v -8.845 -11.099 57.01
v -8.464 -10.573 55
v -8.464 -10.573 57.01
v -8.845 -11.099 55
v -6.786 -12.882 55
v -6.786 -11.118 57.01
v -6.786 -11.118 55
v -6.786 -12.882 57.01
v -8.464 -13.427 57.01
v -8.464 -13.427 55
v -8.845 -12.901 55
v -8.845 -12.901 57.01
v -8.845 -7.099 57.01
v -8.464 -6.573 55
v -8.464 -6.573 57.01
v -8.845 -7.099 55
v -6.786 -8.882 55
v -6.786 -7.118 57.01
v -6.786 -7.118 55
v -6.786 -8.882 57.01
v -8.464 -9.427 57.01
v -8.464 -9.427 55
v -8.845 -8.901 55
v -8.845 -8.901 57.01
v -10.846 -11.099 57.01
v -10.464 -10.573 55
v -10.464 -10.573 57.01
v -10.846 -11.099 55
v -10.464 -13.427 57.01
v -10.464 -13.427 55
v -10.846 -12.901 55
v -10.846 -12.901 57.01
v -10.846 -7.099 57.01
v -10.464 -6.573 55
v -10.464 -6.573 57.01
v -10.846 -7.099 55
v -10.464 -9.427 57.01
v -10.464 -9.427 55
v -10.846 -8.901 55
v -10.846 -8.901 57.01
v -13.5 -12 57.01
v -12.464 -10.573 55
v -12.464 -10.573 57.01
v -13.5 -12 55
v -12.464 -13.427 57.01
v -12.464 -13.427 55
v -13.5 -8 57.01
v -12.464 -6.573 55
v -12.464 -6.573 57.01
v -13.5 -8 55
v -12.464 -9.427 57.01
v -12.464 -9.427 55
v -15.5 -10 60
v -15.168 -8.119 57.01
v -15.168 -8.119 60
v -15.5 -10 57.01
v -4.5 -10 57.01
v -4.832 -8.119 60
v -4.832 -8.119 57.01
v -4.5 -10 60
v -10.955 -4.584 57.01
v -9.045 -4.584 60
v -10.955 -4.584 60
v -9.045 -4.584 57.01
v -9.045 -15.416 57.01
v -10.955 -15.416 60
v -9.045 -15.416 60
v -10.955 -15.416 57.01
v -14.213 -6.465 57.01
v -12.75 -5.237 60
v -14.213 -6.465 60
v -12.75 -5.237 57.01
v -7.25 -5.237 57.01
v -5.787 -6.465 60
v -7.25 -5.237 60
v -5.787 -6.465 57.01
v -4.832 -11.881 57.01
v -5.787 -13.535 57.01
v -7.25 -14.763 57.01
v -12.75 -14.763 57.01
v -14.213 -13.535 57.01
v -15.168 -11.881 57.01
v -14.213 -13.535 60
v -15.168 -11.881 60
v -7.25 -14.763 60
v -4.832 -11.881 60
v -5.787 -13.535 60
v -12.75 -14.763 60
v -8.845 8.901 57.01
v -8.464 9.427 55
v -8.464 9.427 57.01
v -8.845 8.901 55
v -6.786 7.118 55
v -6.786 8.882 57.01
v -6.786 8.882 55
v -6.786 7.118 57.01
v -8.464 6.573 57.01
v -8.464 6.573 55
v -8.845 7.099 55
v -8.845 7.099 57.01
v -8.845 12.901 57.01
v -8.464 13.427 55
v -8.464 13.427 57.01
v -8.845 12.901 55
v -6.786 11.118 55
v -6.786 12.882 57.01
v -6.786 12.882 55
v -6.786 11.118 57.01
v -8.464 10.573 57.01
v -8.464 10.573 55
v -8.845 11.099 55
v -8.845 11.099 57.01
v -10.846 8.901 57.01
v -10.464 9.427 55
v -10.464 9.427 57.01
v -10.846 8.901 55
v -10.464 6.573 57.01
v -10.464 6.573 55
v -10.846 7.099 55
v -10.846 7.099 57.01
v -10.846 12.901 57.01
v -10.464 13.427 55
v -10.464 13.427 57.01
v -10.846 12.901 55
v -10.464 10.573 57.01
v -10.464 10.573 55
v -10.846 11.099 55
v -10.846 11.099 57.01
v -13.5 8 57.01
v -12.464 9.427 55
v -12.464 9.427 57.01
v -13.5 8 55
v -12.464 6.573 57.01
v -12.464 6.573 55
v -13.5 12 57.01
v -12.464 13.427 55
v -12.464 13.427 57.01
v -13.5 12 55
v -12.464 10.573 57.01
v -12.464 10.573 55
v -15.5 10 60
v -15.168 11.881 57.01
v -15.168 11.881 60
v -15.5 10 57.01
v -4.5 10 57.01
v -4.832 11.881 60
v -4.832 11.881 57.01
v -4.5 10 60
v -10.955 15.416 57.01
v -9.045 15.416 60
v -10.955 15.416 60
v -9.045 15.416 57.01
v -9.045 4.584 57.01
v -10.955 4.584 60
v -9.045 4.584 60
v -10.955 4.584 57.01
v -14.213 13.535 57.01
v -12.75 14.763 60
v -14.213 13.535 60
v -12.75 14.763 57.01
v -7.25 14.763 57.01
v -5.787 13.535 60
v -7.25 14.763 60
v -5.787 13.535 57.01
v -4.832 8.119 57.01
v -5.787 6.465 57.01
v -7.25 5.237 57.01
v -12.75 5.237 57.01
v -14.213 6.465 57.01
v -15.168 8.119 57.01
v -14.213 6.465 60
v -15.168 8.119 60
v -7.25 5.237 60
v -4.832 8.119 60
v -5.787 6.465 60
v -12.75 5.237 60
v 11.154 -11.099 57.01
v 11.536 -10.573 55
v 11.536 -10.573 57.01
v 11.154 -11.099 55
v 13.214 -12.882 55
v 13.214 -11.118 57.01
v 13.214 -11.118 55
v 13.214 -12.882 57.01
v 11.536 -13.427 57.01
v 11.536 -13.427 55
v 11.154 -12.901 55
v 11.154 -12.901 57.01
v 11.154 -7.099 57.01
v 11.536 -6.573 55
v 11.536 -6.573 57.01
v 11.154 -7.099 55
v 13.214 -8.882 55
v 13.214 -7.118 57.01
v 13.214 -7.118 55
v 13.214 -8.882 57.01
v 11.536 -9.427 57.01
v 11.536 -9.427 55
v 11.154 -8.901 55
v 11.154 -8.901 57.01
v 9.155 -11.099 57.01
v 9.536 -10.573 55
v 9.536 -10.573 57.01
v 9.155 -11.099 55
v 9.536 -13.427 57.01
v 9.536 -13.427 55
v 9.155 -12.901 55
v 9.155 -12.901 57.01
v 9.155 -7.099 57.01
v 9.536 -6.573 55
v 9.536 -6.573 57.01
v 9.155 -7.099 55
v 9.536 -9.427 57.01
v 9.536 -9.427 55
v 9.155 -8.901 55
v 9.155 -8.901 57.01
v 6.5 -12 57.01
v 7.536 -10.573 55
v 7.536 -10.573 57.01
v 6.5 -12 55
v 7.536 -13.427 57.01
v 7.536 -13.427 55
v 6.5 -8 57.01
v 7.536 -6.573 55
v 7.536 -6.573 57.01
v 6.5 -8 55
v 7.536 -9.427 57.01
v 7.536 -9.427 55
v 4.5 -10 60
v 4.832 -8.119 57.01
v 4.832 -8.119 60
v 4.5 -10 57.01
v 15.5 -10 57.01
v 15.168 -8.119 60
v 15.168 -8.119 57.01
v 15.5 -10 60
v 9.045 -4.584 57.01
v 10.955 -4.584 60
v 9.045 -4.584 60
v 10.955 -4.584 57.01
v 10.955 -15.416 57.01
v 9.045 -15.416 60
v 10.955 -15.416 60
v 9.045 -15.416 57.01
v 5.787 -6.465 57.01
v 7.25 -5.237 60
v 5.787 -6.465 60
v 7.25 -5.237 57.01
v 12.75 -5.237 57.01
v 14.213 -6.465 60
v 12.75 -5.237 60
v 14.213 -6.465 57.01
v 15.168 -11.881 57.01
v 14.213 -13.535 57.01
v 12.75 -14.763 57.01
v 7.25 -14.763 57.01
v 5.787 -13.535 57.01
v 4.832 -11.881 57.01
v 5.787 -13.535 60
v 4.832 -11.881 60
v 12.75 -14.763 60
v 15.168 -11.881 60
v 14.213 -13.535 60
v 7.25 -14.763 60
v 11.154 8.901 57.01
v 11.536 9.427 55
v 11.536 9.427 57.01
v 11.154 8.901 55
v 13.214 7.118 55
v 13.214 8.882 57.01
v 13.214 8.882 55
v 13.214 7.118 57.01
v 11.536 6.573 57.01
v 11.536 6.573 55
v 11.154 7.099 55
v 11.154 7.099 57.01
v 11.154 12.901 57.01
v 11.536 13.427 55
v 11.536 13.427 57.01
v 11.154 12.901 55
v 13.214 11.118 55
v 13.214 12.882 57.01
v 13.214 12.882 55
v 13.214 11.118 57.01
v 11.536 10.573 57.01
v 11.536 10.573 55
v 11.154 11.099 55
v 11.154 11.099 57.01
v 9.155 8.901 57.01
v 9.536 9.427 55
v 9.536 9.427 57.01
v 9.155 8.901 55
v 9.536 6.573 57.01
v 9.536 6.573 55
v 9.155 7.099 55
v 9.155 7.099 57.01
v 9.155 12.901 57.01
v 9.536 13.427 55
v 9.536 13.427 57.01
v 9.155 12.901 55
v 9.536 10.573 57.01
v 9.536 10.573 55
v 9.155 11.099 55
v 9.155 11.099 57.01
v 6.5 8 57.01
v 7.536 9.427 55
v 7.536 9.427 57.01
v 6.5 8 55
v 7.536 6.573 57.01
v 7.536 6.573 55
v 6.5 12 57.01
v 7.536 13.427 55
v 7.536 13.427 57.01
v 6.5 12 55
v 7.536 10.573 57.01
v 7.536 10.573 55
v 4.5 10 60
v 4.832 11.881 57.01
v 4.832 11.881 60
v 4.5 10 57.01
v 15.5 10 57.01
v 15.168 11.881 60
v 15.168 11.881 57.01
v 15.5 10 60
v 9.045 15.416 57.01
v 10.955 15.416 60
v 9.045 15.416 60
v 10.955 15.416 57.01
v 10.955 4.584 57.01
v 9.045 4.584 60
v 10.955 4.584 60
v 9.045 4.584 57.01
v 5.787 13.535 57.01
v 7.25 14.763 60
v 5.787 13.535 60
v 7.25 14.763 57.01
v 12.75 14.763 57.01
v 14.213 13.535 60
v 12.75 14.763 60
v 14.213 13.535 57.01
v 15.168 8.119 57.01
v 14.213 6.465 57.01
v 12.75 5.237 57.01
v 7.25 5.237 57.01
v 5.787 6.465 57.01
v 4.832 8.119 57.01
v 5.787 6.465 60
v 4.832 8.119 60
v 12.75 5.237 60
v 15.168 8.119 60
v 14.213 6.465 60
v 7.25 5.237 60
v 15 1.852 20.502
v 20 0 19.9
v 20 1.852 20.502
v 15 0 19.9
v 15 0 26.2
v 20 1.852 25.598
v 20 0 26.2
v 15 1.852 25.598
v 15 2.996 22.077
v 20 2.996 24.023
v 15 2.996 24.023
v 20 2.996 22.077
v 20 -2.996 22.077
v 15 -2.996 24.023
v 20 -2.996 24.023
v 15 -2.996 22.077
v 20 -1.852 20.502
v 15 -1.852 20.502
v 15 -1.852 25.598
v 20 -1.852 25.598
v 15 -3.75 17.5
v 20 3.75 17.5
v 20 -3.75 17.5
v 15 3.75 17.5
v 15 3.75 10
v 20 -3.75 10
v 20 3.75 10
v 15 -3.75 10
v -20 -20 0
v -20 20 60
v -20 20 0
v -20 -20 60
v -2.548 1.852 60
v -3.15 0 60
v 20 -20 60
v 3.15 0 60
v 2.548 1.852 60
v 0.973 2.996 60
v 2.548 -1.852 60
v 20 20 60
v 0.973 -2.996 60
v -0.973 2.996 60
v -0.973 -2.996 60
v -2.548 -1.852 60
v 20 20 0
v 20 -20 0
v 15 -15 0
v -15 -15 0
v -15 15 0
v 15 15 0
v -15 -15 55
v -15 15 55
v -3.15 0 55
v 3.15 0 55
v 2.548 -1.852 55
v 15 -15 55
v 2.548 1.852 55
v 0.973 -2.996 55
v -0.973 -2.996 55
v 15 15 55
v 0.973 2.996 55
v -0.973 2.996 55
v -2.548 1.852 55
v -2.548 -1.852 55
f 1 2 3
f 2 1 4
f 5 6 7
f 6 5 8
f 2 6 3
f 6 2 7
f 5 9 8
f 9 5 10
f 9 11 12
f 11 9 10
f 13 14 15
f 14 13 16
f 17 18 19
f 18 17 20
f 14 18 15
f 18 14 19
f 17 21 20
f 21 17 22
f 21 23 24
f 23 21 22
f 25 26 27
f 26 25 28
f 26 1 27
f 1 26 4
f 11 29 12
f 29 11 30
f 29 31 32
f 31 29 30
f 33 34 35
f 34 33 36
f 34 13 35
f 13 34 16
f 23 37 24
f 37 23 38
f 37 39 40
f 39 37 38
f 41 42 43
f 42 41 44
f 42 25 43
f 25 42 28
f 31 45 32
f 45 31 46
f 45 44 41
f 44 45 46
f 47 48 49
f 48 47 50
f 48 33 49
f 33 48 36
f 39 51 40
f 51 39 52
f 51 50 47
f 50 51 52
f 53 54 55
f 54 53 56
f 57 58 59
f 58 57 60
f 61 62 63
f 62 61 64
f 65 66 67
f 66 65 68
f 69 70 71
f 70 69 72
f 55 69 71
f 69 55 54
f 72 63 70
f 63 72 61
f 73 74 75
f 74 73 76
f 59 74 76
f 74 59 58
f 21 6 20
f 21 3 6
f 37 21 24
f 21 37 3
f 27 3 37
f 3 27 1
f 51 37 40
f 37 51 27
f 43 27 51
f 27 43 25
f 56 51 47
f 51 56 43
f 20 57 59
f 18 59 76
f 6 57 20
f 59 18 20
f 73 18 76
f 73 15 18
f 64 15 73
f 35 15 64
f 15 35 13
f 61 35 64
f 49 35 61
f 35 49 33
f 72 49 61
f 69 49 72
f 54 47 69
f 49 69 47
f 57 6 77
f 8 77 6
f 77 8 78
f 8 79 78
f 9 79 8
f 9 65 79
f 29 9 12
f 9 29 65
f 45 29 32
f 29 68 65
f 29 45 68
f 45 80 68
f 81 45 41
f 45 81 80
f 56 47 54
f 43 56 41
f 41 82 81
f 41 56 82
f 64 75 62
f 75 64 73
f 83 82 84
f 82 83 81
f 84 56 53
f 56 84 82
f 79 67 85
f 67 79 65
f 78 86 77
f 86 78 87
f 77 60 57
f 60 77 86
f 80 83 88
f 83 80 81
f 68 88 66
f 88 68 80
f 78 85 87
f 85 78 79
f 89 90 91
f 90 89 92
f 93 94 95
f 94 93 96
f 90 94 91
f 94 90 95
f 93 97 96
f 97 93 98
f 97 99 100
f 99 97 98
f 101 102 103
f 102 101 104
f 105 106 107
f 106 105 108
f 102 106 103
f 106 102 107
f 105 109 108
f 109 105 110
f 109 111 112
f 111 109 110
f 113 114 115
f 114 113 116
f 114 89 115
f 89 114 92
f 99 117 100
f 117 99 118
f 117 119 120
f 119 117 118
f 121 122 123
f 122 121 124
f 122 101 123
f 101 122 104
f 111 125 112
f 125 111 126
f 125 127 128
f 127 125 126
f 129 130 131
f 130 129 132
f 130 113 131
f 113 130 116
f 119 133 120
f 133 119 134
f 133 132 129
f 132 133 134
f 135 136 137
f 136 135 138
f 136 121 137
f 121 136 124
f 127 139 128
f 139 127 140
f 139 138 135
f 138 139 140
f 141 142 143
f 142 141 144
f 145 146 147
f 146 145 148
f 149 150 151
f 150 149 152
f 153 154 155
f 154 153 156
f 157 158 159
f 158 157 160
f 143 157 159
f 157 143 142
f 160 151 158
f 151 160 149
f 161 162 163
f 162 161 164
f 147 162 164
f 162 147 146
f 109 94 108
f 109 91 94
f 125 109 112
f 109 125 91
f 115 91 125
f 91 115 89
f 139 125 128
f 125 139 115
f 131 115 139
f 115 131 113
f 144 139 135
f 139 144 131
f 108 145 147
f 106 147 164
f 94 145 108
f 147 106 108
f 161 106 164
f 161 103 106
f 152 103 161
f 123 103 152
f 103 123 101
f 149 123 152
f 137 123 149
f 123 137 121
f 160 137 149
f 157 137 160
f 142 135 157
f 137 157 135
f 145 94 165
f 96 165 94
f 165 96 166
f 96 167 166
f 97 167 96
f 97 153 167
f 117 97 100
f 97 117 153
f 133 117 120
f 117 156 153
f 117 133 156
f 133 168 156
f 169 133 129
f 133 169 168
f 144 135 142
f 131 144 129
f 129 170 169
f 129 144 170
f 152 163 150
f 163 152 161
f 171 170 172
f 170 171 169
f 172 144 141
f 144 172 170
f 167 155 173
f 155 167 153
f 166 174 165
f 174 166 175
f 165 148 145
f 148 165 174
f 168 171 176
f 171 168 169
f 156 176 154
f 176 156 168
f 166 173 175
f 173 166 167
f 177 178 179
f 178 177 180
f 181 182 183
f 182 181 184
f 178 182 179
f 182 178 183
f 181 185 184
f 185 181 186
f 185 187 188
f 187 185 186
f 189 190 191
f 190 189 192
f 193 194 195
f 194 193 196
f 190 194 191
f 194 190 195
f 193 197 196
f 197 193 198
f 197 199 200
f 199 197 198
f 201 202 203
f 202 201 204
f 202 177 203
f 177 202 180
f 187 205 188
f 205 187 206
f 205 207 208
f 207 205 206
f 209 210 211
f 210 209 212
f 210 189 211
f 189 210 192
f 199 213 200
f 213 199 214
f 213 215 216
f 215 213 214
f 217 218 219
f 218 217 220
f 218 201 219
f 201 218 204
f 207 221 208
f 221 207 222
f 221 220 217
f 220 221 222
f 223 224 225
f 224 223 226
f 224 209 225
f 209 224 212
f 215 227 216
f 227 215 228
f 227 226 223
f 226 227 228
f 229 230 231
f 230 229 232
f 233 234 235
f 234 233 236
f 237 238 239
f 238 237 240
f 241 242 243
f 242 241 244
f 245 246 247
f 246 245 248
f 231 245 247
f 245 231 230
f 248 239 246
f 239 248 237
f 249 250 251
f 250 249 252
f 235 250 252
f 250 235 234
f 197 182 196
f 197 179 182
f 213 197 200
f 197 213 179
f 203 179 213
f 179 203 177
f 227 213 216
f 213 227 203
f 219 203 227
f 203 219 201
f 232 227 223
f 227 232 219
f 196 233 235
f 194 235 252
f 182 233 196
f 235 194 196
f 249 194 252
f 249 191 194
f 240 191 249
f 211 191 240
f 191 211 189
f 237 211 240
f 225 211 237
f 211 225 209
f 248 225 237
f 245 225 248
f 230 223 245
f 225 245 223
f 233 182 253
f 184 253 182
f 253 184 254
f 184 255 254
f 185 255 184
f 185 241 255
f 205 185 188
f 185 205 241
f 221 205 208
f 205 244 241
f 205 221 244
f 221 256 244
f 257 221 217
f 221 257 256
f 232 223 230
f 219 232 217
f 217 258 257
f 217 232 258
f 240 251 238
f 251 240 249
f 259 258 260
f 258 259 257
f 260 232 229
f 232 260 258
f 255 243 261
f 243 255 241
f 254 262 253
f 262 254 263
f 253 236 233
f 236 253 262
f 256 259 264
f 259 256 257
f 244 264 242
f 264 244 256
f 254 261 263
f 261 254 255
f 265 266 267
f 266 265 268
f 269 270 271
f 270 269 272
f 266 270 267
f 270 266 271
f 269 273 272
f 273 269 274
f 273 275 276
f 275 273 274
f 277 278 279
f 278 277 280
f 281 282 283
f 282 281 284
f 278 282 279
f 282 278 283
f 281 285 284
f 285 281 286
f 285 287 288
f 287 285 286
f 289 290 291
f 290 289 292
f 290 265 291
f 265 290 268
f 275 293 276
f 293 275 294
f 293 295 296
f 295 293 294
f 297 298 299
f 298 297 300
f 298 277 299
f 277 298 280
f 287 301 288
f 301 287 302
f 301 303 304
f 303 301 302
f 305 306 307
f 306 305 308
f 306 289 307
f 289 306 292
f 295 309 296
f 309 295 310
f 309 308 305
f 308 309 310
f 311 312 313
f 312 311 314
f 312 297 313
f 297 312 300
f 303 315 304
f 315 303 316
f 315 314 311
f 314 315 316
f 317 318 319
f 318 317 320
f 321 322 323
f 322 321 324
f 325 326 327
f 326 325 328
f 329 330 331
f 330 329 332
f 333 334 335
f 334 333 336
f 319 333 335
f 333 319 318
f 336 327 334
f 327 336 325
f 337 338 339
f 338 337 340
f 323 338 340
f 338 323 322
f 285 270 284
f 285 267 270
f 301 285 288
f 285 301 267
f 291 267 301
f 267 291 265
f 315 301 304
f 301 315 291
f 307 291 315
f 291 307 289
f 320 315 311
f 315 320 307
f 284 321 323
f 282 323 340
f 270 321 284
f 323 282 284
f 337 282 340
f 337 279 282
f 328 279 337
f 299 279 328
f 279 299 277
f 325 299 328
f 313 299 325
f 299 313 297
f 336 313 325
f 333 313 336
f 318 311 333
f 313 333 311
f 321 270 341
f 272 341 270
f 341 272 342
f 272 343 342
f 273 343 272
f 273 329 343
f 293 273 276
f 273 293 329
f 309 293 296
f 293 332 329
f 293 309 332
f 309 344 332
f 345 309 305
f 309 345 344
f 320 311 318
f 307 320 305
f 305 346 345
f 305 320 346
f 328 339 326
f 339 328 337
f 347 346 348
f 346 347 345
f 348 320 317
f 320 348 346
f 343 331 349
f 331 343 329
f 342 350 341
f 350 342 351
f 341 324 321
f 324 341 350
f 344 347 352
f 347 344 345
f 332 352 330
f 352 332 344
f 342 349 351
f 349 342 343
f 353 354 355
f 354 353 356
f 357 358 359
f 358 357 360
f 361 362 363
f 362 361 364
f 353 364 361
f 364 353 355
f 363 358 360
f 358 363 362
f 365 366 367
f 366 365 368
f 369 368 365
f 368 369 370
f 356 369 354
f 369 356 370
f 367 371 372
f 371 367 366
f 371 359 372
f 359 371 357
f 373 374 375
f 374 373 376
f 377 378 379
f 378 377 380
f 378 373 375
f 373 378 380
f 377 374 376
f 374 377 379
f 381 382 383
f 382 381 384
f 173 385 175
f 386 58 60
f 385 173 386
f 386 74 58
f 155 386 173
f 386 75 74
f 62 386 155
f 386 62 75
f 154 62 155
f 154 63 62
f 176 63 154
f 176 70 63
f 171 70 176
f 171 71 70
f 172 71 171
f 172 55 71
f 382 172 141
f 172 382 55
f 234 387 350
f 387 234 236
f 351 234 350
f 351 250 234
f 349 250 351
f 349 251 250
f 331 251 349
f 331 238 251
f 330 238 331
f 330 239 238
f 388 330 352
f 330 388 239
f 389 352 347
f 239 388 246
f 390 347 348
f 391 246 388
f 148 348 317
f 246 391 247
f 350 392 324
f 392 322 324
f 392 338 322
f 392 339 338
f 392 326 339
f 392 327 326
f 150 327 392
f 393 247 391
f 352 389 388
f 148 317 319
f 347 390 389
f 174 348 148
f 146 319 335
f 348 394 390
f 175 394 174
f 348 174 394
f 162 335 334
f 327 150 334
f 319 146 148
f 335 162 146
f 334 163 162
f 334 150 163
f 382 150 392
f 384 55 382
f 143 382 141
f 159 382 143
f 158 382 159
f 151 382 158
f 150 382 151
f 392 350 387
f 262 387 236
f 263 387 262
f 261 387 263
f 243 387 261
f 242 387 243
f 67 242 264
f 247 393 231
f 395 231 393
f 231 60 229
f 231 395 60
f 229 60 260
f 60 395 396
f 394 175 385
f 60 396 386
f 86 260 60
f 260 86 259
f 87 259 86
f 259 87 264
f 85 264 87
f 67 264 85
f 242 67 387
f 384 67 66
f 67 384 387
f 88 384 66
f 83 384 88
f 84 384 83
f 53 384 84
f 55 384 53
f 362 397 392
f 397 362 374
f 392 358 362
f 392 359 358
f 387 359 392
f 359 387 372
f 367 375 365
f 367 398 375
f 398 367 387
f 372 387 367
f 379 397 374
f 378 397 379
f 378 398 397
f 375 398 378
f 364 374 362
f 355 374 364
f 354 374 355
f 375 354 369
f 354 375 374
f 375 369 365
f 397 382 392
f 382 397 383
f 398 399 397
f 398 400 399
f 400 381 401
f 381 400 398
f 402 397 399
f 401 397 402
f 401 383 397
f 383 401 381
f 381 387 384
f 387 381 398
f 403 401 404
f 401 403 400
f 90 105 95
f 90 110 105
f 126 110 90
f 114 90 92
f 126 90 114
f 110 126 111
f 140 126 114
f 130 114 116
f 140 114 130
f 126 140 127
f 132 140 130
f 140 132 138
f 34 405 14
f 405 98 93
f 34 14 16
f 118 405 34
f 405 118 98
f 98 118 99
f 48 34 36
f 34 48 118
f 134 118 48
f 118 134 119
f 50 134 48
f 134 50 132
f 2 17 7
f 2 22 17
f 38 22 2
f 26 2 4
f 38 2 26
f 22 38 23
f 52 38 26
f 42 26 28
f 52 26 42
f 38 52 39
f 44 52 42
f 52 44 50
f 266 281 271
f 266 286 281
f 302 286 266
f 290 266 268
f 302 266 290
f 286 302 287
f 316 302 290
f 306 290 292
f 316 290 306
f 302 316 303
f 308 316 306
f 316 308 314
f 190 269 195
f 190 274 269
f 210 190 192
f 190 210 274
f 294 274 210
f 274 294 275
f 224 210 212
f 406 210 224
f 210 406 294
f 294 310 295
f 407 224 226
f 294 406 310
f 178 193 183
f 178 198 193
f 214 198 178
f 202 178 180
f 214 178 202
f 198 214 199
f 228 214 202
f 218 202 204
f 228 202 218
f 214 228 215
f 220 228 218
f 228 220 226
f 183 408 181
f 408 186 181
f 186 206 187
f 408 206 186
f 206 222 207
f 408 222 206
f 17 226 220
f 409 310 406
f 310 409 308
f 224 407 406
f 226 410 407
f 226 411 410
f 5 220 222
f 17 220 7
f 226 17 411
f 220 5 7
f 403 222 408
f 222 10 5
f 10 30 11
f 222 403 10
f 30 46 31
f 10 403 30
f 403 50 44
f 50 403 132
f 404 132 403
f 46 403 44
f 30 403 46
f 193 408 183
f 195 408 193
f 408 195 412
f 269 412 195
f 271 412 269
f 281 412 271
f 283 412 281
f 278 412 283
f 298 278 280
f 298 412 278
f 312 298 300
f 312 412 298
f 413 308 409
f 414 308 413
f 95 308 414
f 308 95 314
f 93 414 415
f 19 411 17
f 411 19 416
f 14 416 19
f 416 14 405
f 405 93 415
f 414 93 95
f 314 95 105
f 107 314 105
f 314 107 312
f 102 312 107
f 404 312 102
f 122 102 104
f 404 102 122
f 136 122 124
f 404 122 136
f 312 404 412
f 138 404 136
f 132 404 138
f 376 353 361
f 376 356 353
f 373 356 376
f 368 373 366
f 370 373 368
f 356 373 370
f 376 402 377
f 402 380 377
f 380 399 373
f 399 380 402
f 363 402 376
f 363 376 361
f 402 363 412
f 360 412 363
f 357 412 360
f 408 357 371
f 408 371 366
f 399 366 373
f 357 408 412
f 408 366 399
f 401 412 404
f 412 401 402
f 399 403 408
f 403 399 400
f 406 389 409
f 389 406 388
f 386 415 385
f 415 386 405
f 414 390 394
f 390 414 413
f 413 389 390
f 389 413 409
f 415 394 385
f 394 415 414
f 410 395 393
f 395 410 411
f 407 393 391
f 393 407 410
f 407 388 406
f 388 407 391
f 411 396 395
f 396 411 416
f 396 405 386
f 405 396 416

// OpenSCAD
// Units are mm
tube_dia = 6.3;
led_dia = 11;
led_h = 3;
wire_dia = 3;
pad_spacing_x = 2;
pad_spacing_y = 4;

module_thickness = 5;
module_size = 40;
module_height = 60;
F = 0.01; // Fudge factor

module rect_array(x_spacing, y_spacing, n, m) {
    for (i = [0:1:n-1], j =[0:1:m - 1])  {
        translate([i * x_spacing
                  ,j * y_spacing])
            children(i % ($children));
    }
}

// Find the unitary vector with direction v. Fails if v=[0,0,0].
function unit(v) = norm(v)>0 ? v/norm(v) : undef; 
// Find the transpose of a rectangular matrix
function transpose(m) = // m is any rectangular matrix of objects
  [ for(j=[0:len(m[0])-1]) [ for(i=[0:len(m)-1]) m[i][j] ] ];
// The identity matrix with dimension n
function identity(n) = [for(i=[0:n-1]) [for(j=[0:n-1]) i==j ? 1 : 0] ];

function rotate_from_to(a,b) = 
    let( axis = unit(cross(a,b)) )
    axis*axis >= 0.99 ? 
        transpose([unit(b), axis, cross(axis, unit(b))]) * 
            [unit(a), axis, cross(axis, unit(a))] : 
        identity(3);

module extrude_path(path) {    
    module line(p0, p1) {
        v = p1-p0;
        translate(p0)
          multmatrix(rotate_from_to([0,0,1],v))
            linear_extrude(norm(v) + 1) children(0);
    }
    
    for (i=[1:len(path) - 1]) {
        line(path[i - 1], path[i])
            children(0);
    }
}

module wire_profile() {
    translate([-pad_spacing_x, -pad_spacing_y/2, 0]) 
    rect_array(pad_spacing_x, pad_spacing_y, 3, 2) {
        circle(d=wire_dia);
    };
}

module led_cutout() {
    rotate([0, 180, 0]) {
        cylinder(d=led_dia, h = led_h);
        
        translate([-pad_spacing_x, -pad_spacing_y/2, 0]) 
        rect_array(pad_spacing_x, pad_spacing_y, 3, 2) {
            cylinder(d=wire_dia, h = module_height+F);
        };
    }
}

module side_holes() {
    wire_fac = 2.5;
    // Translate so everything is lined up on the xy plane
    // grows into -x, and the y axis is the baseline
    translate([-tube_dia - 3 - (wire_fac / 2) * wire_dia
              ,0
              ,-module_thickness - F/2]) {
        // tube hole
        cylinder(d=tube_dia, h = module_thickness +F);
        // Wire pigtail hole
        translate([tube_dia + 3, 0, (module_thickness + F) / 2])
            cube([wire_fac * wire_dia
                 , wire_fac * wire_dia
                 , module_thickness + F], true);
    }
}

difference() {
    translate([0, 0, module_height / 2]) {
        cube([module_size, module_size, module_height], true);
    }
    
    // Hollow out the inside
    translate([0, 0, (module_height - module_thickness - F) / 2])
        cube([module_size - 2 * module_thickness
             ,module_size - 2 * module_thickness
             ,module_height - module_thickness + F], true);
    
    // Fountain outlet
    
    cylinder(d=tube_dia, h=100);
    
    // LED cutouts
    
    #translate([-module_size / 4, -module_size / 4, module_height+F])
    rect_array(module_size / 2, module_size / 2, 2, 2) {
        led_cutout();
    }
    
    #translate([module_size / 2, 0, 10])
        rotate([0, 90, 0])
        side_holes();
}
